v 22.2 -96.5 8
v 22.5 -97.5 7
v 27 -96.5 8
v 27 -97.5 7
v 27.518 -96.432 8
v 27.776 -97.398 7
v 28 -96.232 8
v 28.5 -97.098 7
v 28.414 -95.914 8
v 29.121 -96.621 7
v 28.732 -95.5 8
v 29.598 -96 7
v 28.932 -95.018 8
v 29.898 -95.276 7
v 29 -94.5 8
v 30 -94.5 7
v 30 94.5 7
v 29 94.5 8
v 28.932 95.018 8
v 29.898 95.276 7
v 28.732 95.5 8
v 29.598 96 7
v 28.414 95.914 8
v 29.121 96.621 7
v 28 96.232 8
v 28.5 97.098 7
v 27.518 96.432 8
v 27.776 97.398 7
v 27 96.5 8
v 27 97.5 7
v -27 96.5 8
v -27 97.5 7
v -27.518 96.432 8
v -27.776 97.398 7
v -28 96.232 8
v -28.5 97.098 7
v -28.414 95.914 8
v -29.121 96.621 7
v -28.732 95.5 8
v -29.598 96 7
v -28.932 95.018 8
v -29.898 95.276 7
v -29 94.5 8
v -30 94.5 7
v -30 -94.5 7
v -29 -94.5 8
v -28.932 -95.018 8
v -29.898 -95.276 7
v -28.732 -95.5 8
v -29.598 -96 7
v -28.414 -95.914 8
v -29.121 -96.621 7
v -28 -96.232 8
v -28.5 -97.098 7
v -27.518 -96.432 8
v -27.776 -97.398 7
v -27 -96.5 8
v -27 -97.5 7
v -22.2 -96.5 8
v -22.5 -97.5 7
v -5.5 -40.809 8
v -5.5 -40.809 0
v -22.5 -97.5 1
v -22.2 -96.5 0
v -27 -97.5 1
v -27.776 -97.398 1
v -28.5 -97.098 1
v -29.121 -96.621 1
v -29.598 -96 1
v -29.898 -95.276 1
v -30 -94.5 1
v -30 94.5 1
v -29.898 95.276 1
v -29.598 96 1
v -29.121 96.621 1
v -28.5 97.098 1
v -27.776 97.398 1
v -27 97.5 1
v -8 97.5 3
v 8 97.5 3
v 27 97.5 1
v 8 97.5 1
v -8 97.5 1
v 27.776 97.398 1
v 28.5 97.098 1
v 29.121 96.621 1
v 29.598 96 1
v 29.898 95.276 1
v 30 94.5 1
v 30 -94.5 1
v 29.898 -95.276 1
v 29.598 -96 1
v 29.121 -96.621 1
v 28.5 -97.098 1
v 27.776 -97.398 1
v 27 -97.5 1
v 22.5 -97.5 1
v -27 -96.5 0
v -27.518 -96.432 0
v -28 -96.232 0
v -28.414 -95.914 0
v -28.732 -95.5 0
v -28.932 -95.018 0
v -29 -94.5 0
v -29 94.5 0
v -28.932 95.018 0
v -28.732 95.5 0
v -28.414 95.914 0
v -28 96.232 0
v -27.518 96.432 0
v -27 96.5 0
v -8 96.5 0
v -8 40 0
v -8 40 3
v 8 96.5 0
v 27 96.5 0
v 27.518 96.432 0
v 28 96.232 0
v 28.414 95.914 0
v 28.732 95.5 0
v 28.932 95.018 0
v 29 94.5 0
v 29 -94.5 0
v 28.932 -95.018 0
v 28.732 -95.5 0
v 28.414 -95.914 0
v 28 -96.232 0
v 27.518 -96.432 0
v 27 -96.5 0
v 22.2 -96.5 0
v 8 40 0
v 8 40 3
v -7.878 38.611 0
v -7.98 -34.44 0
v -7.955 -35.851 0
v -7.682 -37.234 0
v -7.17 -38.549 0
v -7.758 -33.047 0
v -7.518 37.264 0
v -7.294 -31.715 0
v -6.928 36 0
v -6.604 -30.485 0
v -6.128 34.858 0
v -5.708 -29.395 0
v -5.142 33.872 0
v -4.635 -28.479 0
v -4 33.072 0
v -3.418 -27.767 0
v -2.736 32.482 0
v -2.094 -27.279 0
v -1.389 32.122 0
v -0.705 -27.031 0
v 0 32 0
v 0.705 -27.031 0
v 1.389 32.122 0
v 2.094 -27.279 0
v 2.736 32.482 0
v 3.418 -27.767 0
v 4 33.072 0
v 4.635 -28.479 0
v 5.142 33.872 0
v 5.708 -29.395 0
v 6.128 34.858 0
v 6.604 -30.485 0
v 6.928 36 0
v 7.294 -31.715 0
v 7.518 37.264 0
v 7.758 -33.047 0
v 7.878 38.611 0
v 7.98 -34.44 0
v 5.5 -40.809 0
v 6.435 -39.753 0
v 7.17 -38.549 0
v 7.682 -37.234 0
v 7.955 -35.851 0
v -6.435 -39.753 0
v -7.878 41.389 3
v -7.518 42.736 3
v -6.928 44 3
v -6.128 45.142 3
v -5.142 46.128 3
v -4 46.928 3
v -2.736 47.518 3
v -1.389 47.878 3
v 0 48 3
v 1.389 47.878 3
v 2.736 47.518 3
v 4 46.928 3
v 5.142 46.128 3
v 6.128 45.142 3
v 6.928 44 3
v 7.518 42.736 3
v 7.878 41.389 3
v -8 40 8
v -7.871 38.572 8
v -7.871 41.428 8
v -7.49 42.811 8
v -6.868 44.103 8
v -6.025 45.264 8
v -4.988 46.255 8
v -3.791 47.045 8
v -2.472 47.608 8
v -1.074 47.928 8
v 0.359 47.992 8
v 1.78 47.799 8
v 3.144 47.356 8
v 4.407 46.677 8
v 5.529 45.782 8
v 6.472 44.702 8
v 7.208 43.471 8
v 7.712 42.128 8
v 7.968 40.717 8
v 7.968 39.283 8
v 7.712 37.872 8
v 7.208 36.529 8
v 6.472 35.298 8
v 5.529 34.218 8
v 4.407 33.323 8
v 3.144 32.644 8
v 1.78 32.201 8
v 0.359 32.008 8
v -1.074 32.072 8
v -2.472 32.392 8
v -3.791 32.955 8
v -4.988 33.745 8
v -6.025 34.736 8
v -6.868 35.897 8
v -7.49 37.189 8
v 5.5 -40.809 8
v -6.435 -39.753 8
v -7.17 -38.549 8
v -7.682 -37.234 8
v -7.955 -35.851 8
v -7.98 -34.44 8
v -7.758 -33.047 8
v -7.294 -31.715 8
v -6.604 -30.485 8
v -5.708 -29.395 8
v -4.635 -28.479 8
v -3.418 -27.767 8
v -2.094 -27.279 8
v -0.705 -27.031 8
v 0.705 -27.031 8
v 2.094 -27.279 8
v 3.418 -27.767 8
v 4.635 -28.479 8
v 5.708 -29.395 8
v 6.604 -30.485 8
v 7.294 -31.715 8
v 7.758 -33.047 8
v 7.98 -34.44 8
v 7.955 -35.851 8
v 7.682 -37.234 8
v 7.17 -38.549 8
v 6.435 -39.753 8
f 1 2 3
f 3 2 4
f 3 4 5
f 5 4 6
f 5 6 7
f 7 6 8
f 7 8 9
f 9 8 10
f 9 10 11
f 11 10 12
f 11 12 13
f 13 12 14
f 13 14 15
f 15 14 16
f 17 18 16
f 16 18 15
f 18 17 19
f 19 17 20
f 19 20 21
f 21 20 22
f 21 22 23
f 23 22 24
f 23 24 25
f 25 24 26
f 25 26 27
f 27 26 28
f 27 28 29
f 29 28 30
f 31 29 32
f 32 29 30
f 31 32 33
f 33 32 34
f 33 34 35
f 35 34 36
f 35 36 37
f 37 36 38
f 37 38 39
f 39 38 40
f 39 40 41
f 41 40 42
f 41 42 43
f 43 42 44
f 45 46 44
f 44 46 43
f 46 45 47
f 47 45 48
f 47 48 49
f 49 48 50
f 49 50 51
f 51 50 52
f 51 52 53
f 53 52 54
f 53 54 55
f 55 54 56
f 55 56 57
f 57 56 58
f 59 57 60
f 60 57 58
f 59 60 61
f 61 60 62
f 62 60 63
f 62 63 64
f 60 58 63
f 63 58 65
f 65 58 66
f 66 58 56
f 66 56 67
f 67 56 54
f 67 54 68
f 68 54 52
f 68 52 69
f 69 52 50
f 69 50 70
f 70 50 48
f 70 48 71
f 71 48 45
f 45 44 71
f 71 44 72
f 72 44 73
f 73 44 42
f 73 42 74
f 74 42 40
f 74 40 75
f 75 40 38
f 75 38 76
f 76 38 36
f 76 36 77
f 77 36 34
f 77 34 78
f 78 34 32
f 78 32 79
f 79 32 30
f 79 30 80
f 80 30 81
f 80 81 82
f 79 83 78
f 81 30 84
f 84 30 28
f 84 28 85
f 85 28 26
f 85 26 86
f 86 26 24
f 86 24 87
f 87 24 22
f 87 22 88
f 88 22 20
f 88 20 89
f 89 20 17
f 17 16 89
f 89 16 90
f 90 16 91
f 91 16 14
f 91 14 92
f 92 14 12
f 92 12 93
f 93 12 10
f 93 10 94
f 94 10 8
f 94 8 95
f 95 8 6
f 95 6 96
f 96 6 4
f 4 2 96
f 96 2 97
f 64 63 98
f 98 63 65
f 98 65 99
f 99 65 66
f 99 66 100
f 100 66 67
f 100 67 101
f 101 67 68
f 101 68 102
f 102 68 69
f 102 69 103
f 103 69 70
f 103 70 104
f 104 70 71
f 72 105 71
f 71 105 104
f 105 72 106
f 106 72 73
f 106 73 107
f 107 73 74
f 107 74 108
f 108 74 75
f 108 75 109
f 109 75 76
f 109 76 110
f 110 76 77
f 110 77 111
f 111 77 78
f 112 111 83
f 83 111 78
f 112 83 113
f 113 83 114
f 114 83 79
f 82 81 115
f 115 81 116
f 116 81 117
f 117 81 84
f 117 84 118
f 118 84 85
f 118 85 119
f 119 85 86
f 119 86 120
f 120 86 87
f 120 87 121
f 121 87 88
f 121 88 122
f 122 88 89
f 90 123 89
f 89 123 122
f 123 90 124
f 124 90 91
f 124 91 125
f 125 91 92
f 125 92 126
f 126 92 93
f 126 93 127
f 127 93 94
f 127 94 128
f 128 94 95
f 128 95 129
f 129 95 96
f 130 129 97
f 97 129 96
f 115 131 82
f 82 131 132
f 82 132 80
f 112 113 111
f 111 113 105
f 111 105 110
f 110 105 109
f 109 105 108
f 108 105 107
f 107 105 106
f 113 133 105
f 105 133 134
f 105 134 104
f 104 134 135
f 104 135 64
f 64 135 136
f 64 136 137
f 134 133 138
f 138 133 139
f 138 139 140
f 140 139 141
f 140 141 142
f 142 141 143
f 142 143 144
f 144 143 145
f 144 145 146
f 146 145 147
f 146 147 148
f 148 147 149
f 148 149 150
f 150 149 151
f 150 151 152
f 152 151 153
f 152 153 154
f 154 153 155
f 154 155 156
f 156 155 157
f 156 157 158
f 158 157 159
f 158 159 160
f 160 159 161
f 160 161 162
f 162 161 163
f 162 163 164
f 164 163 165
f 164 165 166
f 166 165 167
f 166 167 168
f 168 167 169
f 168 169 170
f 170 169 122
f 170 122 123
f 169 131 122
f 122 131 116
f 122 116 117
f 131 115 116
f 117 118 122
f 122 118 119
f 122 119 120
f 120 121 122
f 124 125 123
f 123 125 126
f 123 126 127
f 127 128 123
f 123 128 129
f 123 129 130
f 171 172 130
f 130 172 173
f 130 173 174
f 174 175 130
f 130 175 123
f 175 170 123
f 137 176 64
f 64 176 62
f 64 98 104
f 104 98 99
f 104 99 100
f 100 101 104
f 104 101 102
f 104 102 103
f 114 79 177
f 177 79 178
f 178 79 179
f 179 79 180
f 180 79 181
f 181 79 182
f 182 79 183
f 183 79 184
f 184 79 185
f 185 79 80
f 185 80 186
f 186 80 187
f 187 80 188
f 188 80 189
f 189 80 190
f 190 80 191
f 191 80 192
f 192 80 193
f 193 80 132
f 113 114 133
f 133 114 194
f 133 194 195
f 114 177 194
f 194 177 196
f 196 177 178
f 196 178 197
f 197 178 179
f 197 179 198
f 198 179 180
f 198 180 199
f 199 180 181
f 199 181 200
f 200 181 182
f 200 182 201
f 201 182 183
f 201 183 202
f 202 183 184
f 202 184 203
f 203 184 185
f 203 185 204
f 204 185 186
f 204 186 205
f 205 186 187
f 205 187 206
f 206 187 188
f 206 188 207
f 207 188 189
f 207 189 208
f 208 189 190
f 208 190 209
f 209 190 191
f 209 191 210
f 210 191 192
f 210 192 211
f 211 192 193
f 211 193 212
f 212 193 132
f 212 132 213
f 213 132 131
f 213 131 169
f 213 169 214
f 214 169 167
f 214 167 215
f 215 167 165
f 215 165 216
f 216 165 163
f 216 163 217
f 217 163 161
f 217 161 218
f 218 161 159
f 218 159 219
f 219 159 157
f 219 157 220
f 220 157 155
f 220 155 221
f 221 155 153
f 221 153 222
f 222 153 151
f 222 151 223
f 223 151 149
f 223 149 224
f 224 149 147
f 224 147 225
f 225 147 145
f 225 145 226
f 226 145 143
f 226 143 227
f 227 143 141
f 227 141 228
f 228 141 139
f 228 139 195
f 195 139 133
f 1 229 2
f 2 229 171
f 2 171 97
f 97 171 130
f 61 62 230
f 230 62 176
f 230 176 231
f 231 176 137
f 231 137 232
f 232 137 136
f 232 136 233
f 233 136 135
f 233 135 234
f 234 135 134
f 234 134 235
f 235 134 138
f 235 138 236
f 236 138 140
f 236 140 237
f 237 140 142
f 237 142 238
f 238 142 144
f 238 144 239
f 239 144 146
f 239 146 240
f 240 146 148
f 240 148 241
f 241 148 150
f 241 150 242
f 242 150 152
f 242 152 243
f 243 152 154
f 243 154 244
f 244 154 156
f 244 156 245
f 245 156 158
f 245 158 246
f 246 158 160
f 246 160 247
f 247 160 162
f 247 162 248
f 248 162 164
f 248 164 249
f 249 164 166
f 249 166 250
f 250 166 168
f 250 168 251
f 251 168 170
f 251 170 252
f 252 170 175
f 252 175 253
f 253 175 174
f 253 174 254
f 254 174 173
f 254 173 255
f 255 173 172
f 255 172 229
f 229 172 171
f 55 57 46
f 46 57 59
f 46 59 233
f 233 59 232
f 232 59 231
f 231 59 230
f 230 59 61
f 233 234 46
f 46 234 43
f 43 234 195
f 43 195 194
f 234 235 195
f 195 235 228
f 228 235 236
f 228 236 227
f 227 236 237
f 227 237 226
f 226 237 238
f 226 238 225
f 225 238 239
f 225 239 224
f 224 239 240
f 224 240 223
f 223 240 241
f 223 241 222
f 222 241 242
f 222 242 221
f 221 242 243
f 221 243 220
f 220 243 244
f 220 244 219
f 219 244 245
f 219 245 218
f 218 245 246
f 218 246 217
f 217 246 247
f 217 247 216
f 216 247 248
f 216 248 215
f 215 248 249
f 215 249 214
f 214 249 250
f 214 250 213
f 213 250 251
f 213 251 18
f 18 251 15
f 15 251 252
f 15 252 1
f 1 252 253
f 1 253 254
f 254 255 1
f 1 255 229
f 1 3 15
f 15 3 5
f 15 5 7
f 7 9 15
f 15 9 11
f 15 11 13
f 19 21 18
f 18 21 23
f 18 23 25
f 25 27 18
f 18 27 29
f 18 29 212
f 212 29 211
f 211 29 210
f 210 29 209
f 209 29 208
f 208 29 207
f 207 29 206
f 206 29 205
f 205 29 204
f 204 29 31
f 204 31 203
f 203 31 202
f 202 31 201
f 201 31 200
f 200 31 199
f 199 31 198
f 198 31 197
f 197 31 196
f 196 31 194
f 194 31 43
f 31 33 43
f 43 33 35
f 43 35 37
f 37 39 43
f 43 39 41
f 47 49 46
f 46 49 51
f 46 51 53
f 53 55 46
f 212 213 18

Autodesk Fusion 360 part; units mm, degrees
sketch "Sketch1" plane through (0, 0, 0) normal (0, 0, 1) x (1, 0, 0) in component "Jewelry Sawing Block"
  line L0 (-30, 97.5) -> (30, 97.5)
  line L1 (30, 97.5) -> (30, -97.5)
  line L2 (30, -97.5) -> (-30, -97.5)
  line L3 (-30, -97.5) -> (-30, 97.5)
  line L4 (-30, 97.5) -> (30, -97.5) construction
  line L5 (30, 97.5) -> (-30, -97.5) construction
  circle A0 centre (0, 40) radius 8
  line L6 (0, 0) -> (0, 40) construction
  line L7 (-8, 97.5) -> (-8, 40)
  line L8 (8, 97.5) -> (8, 40)
  circle A1 centre (0, -35) radius 8
  line L9 (0, 0) -> (0, -35) construction
  line L10 (-22.5, -97.5) -> (-5.5, -40.8095)
  line L11 (22.5, -97.5) -> (5.5, -40.8095)
  dimension "d1" = 195
  dimension "d2" = 60
  dimension "d3" = 16
  dimension "d4" = 40
  dimension "d5" = 16
  dimension "d6" = 35
  dimension "d7" = 7.5
  dimension "d8" = 11
extrude "Extrude1" add sketch "Sketch1" along normal blind 8 contours L0 L1 L2 L3 A0 L7 L8 A1 L10 L11 | L0 A0 L7 L8 in component "Jewelry Sawing Block"
extrude "Extrude2" cut sketch "Sketch1" along normal blind 3 contours L0 A0 L7 L8 in component "Jewelry Sawing Block"
fillet "Fillet1" radius 3 4 edges at (-30, -97.5, 4) (30, -97.5, 4) (30, 97.5, 4) (-30, 97.5, 4) in component "Jewelry Sawing Block"
chamfer "Chamfer1" distance 1 angle 45 19 edges at (30, 0, 0) (29.1213, -96.6213, 0) (24.75, -97.5, 0) (17.5, 97.5, 0) (29.1213, 96.6213, 0) (-30, 0, 0) (-29.1213, 96.6213, 0) (-17.5, 97.5, 0) (-24.75, -97.5, 0) (-29.1213, -96.6213, 0) (30, 0, 8) (29.1213, 96.6213, 8) (0, 97.5, 8) (-29.1213, 96.6213, 8) (-30, 0, 8) (-29.1213, -96.6213, 8) (-24.75, -97.5, 8) (24.75, -97.5, 8) (29.1213, -96.6213, 8) in component "Jewelry Sawing Block"
component "Jewelry Sawing Block" placed x (1, 0, 0) y (0, 1, 0) z (0, 0, 1) at (0, 0, 0)
